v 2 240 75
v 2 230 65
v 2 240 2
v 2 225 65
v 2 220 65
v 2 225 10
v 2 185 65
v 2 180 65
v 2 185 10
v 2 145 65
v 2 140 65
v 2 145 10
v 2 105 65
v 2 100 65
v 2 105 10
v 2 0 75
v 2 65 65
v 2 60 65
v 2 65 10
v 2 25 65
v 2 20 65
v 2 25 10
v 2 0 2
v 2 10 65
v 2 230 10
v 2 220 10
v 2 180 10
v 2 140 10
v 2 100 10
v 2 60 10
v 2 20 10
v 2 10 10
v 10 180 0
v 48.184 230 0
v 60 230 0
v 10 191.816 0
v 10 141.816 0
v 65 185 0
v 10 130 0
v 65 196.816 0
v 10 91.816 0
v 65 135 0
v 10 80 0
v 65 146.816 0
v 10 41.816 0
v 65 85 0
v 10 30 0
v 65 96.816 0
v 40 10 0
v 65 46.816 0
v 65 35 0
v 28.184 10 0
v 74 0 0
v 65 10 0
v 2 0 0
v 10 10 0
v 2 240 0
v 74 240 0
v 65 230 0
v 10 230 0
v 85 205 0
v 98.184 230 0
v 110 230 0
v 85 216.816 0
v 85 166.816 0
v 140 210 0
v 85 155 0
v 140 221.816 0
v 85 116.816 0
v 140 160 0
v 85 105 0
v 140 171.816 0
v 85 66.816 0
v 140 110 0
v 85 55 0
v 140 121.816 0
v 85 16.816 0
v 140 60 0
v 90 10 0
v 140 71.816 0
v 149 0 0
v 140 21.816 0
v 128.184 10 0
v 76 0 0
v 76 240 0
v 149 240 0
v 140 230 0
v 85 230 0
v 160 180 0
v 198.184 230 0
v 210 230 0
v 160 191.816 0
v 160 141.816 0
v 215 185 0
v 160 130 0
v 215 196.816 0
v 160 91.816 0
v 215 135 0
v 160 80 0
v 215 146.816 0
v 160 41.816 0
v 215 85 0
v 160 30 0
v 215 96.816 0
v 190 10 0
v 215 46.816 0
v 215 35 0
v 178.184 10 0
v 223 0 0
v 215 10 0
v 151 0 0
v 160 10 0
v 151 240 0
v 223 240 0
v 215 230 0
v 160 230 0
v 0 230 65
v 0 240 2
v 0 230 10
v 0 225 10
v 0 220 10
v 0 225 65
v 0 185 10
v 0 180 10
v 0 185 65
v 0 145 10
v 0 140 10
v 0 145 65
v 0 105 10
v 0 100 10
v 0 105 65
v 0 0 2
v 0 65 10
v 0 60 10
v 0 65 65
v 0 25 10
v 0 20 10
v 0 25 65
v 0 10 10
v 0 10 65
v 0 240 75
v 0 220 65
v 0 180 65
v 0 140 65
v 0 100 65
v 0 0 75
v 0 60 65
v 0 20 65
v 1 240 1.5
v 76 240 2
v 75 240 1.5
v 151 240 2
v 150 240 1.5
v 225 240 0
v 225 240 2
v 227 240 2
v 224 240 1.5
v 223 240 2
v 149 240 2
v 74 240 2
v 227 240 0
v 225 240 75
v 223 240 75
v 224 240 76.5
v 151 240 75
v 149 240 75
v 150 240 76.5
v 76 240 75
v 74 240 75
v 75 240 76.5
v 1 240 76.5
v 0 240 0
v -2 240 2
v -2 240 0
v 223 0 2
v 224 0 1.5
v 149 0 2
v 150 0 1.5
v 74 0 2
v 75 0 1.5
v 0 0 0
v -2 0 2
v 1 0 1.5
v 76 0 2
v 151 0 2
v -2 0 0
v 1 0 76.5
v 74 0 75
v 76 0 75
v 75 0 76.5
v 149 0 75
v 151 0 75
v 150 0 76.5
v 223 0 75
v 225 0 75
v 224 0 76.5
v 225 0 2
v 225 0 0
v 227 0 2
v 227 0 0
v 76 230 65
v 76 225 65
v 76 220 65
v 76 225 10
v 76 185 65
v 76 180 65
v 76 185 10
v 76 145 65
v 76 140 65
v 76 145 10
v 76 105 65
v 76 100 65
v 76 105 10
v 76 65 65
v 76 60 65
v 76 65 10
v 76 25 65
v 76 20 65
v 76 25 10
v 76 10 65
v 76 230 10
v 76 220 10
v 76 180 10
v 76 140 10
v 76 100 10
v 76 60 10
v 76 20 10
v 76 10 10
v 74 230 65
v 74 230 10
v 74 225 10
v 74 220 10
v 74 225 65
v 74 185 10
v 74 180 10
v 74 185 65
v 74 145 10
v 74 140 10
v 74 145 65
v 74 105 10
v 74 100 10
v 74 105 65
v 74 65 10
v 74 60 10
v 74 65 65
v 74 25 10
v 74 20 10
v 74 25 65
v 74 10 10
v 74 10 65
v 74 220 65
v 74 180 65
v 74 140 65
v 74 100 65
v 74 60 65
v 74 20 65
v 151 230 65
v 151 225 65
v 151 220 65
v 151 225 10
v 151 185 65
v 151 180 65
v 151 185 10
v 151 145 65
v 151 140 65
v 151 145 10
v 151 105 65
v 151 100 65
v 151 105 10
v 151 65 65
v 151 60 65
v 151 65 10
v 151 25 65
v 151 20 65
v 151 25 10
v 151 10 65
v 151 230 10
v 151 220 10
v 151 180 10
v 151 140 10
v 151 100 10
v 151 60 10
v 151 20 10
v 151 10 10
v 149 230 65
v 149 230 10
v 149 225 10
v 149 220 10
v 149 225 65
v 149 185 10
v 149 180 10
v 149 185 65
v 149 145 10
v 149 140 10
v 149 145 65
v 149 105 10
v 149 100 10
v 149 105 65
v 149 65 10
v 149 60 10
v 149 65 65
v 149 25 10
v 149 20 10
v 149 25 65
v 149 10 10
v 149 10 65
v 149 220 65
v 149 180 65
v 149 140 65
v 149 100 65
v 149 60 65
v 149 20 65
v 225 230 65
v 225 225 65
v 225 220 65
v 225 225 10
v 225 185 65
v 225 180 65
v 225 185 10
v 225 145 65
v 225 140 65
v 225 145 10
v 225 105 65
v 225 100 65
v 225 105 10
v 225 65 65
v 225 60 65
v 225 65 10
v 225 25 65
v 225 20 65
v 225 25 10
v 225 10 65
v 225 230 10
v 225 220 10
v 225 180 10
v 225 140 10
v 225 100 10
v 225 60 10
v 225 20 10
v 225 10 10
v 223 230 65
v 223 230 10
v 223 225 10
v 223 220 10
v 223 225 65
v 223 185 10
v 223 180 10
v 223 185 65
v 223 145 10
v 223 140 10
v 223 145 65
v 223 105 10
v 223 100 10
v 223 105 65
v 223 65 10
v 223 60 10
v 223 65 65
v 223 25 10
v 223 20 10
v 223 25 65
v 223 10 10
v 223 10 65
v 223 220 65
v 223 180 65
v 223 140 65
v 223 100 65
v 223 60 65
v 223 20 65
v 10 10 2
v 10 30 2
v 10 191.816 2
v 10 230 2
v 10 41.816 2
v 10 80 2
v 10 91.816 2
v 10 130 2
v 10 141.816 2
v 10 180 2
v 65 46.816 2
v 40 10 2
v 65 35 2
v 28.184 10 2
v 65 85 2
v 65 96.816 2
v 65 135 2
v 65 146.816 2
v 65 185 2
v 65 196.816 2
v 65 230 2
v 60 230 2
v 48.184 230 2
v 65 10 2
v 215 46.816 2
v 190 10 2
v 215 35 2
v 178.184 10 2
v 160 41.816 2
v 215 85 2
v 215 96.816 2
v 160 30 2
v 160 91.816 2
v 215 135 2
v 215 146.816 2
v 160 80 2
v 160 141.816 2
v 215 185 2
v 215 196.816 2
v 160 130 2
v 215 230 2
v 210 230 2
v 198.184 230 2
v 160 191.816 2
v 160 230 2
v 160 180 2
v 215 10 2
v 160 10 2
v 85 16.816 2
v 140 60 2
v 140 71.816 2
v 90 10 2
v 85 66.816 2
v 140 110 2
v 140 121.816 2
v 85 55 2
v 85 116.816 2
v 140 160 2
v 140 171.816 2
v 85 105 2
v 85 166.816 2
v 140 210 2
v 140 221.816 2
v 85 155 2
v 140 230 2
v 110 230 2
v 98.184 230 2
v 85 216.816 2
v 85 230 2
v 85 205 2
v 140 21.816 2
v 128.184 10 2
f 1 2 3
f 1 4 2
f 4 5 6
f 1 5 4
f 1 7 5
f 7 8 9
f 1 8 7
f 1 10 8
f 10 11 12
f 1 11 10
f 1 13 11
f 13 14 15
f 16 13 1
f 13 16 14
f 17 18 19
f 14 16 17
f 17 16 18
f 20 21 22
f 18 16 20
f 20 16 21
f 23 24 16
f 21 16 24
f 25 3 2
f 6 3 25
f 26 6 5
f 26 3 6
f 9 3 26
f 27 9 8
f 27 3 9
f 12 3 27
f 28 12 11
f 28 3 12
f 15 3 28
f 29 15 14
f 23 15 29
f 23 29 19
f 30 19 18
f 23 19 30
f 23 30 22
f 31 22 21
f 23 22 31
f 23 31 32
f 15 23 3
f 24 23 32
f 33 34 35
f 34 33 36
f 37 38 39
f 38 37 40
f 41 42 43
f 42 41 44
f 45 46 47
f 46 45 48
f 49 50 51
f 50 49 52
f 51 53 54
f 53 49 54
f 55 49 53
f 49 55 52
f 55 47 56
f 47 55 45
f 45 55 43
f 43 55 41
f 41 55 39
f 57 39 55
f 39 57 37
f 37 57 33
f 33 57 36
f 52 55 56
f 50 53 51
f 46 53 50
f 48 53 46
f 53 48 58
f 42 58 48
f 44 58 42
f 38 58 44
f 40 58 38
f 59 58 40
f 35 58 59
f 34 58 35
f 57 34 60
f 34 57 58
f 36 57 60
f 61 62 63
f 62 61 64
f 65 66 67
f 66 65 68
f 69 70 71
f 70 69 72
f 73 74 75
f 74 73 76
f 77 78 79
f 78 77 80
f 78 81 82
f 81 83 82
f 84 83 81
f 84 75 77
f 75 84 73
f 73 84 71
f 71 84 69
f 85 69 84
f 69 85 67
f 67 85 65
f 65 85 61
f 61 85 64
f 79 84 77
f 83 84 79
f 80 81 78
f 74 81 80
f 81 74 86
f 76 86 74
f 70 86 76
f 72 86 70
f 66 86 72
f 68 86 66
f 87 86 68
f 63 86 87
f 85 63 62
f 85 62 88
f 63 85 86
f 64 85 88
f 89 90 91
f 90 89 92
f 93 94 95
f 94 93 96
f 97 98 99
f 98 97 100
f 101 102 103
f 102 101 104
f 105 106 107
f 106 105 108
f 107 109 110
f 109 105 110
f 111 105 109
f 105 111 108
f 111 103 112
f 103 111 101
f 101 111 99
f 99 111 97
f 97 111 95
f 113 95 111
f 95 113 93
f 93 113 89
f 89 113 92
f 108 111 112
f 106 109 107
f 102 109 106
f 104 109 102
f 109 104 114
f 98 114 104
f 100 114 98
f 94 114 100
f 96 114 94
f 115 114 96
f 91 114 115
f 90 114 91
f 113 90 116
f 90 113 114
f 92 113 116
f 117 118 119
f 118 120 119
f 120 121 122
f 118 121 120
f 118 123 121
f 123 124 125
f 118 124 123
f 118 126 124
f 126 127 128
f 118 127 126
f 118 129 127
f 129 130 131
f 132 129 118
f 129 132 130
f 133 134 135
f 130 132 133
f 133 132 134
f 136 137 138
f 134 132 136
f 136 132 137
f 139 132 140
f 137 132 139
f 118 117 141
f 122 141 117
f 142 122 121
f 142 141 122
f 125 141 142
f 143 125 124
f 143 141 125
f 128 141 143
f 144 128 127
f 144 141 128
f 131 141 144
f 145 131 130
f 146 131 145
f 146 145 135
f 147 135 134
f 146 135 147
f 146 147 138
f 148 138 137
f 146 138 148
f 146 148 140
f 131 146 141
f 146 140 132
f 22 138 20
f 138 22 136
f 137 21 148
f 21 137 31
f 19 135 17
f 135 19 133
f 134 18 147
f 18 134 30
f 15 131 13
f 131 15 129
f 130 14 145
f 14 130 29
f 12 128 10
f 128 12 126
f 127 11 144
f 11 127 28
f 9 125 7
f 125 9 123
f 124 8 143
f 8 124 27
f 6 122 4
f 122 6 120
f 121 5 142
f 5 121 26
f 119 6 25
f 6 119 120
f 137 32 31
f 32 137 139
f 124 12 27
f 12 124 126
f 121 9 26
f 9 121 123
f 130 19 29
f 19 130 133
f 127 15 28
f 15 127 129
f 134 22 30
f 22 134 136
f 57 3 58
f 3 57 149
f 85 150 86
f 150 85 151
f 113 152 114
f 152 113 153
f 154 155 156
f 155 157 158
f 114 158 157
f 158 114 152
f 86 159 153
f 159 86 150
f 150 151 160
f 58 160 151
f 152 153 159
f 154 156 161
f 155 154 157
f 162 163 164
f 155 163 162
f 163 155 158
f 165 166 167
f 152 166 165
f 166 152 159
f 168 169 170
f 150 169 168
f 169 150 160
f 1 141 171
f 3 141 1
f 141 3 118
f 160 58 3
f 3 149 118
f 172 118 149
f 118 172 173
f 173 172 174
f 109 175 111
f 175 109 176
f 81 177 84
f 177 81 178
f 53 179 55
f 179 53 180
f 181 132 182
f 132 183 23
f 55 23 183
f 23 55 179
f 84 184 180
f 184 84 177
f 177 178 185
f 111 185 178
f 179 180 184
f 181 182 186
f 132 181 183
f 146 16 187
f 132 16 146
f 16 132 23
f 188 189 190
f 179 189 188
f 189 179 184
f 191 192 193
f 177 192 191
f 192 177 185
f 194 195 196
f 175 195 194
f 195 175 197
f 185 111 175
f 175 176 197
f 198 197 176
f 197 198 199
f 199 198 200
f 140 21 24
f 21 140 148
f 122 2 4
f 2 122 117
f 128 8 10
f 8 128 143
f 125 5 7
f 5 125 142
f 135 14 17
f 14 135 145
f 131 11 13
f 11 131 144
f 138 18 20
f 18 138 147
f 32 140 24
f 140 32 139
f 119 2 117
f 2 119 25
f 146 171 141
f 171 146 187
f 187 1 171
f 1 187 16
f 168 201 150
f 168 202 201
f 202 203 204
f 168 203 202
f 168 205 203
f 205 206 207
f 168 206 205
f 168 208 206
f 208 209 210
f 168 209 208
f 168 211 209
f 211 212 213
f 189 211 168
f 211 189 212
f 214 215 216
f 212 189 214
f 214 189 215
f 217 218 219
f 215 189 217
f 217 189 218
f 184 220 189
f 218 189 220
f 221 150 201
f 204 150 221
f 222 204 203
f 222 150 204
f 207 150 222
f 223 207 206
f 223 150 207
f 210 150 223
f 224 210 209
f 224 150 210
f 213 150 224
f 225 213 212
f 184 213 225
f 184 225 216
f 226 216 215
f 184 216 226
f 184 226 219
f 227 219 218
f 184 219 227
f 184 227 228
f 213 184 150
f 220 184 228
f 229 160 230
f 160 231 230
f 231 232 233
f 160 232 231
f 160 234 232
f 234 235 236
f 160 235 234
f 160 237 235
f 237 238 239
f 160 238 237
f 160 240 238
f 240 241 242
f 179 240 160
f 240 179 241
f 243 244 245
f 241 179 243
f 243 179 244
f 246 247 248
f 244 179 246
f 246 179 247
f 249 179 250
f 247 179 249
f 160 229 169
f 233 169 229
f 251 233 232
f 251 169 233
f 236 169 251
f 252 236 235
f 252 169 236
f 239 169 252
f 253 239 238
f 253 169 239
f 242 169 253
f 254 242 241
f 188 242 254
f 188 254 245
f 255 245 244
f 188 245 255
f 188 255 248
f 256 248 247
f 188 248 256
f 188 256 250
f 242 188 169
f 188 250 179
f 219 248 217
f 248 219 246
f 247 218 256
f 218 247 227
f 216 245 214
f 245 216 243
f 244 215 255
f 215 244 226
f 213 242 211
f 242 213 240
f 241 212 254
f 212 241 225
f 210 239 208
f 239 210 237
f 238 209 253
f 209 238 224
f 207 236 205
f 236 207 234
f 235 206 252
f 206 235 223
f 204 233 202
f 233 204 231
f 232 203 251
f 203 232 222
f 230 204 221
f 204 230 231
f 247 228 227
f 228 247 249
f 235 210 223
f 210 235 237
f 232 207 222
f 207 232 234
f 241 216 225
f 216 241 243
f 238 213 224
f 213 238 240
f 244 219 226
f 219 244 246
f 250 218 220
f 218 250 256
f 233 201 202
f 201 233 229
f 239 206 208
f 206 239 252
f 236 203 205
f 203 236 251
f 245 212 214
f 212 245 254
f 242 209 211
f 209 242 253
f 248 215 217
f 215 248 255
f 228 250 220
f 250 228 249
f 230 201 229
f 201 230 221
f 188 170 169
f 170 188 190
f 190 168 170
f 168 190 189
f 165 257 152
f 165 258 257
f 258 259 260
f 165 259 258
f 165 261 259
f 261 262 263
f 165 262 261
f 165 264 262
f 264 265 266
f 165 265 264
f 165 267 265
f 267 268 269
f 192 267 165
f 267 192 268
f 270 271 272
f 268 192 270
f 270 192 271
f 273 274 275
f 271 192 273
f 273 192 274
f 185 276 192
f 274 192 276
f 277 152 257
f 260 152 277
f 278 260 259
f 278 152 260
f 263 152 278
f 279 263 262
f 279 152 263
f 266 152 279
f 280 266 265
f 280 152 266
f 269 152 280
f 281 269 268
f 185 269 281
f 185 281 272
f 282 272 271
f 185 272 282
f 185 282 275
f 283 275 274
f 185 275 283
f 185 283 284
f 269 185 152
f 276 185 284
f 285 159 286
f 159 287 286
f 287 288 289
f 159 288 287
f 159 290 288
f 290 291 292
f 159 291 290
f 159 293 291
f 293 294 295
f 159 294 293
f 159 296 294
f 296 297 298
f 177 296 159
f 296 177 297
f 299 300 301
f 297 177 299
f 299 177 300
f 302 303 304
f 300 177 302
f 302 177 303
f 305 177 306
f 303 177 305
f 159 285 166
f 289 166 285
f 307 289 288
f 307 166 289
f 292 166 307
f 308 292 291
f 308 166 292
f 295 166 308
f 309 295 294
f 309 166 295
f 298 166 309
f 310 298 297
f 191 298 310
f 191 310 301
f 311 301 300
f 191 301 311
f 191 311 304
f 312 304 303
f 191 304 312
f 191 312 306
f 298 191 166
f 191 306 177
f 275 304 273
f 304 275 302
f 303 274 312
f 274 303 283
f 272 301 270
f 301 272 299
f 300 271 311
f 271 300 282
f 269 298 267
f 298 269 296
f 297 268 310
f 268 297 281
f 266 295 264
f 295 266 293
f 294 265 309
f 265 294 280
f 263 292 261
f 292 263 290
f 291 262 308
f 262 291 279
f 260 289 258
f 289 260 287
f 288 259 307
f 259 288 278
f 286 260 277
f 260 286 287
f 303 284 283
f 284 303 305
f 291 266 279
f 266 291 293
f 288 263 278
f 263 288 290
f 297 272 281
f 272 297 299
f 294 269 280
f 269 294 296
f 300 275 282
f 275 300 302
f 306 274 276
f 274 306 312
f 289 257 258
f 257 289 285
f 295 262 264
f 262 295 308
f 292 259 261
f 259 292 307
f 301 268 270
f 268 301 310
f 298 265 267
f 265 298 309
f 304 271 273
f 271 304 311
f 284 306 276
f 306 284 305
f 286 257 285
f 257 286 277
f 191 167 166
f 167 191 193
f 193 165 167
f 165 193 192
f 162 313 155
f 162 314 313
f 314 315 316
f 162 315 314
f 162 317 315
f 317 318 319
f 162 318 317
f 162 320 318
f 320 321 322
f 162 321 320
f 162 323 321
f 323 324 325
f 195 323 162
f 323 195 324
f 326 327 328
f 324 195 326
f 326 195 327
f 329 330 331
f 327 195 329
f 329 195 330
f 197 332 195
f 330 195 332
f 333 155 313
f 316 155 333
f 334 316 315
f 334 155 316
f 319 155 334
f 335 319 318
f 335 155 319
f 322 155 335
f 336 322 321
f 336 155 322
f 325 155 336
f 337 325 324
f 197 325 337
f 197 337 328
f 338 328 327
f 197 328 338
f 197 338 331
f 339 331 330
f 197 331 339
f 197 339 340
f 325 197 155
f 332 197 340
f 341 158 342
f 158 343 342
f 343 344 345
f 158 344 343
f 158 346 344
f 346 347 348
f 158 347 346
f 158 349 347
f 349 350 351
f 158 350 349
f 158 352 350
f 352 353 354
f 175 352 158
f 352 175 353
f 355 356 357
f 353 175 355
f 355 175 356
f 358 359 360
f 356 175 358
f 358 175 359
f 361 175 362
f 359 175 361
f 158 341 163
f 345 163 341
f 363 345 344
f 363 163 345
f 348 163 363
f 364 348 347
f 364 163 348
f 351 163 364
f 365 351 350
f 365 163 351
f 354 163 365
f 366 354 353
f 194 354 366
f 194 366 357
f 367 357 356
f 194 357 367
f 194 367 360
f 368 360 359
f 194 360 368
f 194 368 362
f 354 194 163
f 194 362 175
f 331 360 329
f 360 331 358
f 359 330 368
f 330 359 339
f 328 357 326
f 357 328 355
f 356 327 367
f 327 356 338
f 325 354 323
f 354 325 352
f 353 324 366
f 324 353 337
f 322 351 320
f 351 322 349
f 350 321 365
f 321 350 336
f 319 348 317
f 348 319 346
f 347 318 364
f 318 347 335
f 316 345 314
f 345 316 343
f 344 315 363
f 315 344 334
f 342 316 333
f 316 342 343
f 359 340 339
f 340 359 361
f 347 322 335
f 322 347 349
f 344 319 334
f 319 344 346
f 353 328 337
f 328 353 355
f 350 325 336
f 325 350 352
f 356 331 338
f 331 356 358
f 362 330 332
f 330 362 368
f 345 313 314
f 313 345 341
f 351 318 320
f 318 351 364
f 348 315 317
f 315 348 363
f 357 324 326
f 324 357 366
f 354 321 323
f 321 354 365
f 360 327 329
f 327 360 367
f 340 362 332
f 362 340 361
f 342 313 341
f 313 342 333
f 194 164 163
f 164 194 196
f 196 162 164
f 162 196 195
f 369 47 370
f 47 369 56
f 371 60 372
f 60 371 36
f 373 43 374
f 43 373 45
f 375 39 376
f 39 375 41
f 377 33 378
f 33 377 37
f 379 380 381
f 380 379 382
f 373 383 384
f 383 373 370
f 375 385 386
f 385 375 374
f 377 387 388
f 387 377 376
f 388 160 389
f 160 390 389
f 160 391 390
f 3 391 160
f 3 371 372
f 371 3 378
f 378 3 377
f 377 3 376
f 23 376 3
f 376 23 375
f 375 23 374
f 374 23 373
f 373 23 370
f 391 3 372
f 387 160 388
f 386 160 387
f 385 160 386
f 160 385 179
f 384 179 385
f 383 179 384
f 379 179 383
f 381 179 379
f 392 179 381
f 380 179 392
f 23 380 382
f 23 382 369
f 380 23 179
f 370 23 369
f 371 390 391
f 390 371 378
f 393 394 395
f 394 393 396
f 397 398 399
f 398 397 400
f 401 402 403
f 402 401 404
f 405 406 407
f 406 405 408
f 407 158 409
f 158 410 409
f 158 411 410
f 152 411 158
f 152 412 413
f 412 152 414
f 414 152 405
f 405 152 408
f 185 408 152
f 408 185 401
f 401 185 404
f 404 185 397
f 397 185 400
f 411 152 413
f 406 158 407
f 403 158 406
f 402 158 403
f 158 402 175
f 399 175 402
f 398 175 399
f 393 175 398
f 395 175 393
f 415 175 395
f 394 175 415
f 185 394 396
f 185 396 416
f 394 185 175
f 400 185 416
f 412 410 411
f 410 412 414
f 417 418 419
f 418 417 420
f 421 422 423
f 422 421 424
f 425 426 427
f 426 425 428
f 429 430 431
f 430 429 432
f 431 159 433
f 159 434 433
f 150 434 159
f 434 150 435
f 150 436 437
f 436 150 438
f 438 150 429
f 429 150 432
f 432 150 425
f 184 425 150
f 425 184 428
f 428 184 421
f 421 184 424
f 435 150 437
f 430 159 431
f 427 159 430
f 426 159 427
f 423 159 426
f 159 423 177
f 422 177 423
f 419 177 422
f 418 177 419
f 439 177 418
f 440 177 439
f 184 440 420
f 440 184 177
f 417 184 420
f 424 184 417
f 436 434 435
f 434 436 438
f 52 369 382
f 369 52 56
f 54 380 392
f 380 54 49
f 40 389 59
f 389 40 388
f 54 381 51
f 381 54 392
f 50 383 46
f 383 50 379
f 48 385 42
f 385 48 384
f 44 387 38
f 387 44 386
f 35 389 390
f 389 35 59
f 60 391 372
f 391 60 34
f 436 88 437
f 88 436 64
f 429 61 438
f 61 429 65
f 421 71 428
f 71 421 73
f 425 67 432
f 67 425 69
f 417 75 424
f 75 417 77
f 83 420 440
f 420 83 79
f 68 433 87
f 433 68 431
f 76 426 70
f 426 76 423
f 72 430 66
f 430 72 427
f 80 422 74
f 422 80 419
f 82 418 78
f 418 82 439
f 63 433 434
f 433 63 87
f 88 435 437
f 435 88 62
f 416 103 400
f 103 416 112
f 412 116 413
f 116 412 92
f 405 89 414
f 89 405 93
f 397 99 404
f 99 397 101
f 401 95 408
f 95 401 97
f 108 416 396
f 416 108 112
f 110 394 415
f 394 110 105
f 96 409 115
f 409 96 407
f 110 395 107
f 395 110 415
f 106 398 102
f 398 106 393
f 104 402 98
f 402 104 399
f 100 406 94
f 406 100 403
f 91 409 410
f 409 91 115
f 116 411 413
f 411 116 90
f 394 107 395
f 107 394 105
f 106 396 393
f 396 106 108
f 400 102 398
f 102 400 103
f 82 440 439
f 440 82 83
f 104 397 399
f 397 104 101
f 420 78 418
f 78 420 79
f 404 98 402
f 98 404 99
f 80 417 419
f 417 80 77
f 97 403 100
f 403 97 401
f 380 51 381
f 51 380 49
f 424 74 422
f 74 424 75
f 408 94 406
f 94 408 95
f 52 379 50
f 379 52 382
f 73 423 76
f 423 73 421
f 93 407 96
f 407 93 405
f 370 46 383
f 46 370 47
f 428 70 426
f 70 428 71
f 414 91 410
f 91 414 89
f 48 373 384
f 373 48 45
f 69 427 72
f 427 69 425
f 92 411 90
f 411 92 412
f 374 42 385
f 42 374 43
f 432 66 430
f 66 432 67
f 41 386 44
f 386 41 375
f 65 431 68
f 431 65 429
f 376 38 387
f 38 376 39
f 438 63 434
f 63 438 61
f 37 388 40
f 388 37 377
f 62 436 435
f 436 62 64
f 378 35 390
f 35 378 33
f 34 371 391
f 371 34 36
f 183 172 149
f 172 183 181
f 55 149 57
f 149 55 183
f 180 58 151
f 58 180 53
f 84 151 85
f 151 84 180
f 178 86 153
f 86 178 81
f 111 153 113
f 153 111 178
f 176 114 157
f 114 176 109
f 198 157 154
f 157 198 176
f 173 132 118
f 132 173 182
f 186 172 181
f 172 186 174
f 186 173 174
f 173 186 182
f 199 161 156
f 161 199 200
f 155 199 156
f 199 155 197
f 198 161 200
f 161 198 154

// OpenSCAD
unit_length = 240;
unit_width = 75;
unit_height = 75;
thickness = 2;

outside_beam_width = 10;

triangle_base = 2;
triangle_height = 1.5;

module shared_inner_bottom_layer(num_units) {
    difference() {
        cube([num_units * unit_width, unit_length, thickness]);
        union() {
            for(i = [-500:50:500]) {
                translate([-20, i, 0])
                rotate([0, 0, -45])
                cube([27, 555, thickness]);
            }
        }
    }
}

module outer_bottom_layer() {    
    cube([outside_beam_width, unit_length, thickness]);
    
    color("green")
    cube([unit_width, outside_beam_width, thickness]);
    
    translate([unit_width - outside_beam_width, 0, 0])
    cube([outside_beam_width, unit_length, thickness]);
    
    color("green")
    translate([0, unit_length - outside_beam_width, 0])
    cube([unit_width, outside_beam_width, thickness]);    
}

module side_wall() {
    cube([thickness, unit_length, outside_beam_width]);
    
    translate([0, 0, unit_height - outside_beam_width])
    cube([thickness, unit_length, outside_beam_width]);
    
    cube([thickness, outside_beam_width, unit_height]);
    
    translate([0, unit_length - outside_beam_width, 0])
    cube([thickness, outside_beam_width, unit_height]);
    
    start = outside_beam_width + 10;
    stop = unit_length - outside_beam_width - 5;
    for(i = [start:40:stop]) {
        translate([0, i, 0])
        cube([thickness, 5, unit_height]);
    }
    
    // top groove
    color("green")
    rotate([-90, 180, 0])
    translate([-triangle_base, unit_height, 0])
    linear_extrude(unit_length)
    polygon(points = 
        [[0, 0], [triangle_base, 0], [triangle_base/2, triangle_height]]);
}

module units() {
    shared_inner_bottom_layer(3);
    outer_bottom_layer();
    side_wall();

    translate([unit_width, 0, 0])
    outer_bottom_layer();

    translate([unit_width - thickness/2, 0, 0])
    side_wall();

    translate([2*unit_width, 0, 0])
    outer_bottom_layer();

    translate([2 * unit_width - thickness/2, 0, 0])
    side_wall();

    translate([3 * unit_width - thickness, 0, 0])
    side_wall();
}

difference() {
    units();
    
    // Bottom grooves
    union() {
        for (i = [0, -unit_width + thickness/2, -2*unit_width + thickness/2, -3*unit_width + thickness]) {
            color("blue")
            rotate([-90, 180, 0])
            translate([i-triangle_base, 0, 0])
            linear_extrude(unit_length)
            polygon(points = 
                [[0, 0], [triangle_base, 0], [triangle_base/2, triangle_height]]);        
        }
    }
}

translate([-2, 0, 0])
cube([2, unit_length, 2]);

translate([unit_width * 3, 0, 0])
cube([2, unit_length, 2]);
